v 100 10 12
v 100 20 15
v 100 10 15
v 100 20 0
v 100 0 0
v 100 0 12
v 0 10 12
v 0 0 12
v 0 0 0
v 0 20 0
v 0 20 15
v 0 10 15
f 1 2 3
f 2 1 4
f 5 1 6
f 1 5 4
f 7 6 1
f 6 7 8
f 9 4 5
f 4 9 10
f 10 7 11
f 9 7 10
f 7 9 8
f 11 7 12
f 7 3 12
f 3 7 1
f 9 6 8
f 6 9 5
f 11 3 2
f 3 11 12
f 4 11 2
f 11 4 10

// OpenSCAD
p1 = 12;
h1 = 10;
p2 = 15;
h2 = 10;
l = 100;

cube([l, h1, p1]);
translate([0,h1,0])
	cube([l, h2, p2]);
